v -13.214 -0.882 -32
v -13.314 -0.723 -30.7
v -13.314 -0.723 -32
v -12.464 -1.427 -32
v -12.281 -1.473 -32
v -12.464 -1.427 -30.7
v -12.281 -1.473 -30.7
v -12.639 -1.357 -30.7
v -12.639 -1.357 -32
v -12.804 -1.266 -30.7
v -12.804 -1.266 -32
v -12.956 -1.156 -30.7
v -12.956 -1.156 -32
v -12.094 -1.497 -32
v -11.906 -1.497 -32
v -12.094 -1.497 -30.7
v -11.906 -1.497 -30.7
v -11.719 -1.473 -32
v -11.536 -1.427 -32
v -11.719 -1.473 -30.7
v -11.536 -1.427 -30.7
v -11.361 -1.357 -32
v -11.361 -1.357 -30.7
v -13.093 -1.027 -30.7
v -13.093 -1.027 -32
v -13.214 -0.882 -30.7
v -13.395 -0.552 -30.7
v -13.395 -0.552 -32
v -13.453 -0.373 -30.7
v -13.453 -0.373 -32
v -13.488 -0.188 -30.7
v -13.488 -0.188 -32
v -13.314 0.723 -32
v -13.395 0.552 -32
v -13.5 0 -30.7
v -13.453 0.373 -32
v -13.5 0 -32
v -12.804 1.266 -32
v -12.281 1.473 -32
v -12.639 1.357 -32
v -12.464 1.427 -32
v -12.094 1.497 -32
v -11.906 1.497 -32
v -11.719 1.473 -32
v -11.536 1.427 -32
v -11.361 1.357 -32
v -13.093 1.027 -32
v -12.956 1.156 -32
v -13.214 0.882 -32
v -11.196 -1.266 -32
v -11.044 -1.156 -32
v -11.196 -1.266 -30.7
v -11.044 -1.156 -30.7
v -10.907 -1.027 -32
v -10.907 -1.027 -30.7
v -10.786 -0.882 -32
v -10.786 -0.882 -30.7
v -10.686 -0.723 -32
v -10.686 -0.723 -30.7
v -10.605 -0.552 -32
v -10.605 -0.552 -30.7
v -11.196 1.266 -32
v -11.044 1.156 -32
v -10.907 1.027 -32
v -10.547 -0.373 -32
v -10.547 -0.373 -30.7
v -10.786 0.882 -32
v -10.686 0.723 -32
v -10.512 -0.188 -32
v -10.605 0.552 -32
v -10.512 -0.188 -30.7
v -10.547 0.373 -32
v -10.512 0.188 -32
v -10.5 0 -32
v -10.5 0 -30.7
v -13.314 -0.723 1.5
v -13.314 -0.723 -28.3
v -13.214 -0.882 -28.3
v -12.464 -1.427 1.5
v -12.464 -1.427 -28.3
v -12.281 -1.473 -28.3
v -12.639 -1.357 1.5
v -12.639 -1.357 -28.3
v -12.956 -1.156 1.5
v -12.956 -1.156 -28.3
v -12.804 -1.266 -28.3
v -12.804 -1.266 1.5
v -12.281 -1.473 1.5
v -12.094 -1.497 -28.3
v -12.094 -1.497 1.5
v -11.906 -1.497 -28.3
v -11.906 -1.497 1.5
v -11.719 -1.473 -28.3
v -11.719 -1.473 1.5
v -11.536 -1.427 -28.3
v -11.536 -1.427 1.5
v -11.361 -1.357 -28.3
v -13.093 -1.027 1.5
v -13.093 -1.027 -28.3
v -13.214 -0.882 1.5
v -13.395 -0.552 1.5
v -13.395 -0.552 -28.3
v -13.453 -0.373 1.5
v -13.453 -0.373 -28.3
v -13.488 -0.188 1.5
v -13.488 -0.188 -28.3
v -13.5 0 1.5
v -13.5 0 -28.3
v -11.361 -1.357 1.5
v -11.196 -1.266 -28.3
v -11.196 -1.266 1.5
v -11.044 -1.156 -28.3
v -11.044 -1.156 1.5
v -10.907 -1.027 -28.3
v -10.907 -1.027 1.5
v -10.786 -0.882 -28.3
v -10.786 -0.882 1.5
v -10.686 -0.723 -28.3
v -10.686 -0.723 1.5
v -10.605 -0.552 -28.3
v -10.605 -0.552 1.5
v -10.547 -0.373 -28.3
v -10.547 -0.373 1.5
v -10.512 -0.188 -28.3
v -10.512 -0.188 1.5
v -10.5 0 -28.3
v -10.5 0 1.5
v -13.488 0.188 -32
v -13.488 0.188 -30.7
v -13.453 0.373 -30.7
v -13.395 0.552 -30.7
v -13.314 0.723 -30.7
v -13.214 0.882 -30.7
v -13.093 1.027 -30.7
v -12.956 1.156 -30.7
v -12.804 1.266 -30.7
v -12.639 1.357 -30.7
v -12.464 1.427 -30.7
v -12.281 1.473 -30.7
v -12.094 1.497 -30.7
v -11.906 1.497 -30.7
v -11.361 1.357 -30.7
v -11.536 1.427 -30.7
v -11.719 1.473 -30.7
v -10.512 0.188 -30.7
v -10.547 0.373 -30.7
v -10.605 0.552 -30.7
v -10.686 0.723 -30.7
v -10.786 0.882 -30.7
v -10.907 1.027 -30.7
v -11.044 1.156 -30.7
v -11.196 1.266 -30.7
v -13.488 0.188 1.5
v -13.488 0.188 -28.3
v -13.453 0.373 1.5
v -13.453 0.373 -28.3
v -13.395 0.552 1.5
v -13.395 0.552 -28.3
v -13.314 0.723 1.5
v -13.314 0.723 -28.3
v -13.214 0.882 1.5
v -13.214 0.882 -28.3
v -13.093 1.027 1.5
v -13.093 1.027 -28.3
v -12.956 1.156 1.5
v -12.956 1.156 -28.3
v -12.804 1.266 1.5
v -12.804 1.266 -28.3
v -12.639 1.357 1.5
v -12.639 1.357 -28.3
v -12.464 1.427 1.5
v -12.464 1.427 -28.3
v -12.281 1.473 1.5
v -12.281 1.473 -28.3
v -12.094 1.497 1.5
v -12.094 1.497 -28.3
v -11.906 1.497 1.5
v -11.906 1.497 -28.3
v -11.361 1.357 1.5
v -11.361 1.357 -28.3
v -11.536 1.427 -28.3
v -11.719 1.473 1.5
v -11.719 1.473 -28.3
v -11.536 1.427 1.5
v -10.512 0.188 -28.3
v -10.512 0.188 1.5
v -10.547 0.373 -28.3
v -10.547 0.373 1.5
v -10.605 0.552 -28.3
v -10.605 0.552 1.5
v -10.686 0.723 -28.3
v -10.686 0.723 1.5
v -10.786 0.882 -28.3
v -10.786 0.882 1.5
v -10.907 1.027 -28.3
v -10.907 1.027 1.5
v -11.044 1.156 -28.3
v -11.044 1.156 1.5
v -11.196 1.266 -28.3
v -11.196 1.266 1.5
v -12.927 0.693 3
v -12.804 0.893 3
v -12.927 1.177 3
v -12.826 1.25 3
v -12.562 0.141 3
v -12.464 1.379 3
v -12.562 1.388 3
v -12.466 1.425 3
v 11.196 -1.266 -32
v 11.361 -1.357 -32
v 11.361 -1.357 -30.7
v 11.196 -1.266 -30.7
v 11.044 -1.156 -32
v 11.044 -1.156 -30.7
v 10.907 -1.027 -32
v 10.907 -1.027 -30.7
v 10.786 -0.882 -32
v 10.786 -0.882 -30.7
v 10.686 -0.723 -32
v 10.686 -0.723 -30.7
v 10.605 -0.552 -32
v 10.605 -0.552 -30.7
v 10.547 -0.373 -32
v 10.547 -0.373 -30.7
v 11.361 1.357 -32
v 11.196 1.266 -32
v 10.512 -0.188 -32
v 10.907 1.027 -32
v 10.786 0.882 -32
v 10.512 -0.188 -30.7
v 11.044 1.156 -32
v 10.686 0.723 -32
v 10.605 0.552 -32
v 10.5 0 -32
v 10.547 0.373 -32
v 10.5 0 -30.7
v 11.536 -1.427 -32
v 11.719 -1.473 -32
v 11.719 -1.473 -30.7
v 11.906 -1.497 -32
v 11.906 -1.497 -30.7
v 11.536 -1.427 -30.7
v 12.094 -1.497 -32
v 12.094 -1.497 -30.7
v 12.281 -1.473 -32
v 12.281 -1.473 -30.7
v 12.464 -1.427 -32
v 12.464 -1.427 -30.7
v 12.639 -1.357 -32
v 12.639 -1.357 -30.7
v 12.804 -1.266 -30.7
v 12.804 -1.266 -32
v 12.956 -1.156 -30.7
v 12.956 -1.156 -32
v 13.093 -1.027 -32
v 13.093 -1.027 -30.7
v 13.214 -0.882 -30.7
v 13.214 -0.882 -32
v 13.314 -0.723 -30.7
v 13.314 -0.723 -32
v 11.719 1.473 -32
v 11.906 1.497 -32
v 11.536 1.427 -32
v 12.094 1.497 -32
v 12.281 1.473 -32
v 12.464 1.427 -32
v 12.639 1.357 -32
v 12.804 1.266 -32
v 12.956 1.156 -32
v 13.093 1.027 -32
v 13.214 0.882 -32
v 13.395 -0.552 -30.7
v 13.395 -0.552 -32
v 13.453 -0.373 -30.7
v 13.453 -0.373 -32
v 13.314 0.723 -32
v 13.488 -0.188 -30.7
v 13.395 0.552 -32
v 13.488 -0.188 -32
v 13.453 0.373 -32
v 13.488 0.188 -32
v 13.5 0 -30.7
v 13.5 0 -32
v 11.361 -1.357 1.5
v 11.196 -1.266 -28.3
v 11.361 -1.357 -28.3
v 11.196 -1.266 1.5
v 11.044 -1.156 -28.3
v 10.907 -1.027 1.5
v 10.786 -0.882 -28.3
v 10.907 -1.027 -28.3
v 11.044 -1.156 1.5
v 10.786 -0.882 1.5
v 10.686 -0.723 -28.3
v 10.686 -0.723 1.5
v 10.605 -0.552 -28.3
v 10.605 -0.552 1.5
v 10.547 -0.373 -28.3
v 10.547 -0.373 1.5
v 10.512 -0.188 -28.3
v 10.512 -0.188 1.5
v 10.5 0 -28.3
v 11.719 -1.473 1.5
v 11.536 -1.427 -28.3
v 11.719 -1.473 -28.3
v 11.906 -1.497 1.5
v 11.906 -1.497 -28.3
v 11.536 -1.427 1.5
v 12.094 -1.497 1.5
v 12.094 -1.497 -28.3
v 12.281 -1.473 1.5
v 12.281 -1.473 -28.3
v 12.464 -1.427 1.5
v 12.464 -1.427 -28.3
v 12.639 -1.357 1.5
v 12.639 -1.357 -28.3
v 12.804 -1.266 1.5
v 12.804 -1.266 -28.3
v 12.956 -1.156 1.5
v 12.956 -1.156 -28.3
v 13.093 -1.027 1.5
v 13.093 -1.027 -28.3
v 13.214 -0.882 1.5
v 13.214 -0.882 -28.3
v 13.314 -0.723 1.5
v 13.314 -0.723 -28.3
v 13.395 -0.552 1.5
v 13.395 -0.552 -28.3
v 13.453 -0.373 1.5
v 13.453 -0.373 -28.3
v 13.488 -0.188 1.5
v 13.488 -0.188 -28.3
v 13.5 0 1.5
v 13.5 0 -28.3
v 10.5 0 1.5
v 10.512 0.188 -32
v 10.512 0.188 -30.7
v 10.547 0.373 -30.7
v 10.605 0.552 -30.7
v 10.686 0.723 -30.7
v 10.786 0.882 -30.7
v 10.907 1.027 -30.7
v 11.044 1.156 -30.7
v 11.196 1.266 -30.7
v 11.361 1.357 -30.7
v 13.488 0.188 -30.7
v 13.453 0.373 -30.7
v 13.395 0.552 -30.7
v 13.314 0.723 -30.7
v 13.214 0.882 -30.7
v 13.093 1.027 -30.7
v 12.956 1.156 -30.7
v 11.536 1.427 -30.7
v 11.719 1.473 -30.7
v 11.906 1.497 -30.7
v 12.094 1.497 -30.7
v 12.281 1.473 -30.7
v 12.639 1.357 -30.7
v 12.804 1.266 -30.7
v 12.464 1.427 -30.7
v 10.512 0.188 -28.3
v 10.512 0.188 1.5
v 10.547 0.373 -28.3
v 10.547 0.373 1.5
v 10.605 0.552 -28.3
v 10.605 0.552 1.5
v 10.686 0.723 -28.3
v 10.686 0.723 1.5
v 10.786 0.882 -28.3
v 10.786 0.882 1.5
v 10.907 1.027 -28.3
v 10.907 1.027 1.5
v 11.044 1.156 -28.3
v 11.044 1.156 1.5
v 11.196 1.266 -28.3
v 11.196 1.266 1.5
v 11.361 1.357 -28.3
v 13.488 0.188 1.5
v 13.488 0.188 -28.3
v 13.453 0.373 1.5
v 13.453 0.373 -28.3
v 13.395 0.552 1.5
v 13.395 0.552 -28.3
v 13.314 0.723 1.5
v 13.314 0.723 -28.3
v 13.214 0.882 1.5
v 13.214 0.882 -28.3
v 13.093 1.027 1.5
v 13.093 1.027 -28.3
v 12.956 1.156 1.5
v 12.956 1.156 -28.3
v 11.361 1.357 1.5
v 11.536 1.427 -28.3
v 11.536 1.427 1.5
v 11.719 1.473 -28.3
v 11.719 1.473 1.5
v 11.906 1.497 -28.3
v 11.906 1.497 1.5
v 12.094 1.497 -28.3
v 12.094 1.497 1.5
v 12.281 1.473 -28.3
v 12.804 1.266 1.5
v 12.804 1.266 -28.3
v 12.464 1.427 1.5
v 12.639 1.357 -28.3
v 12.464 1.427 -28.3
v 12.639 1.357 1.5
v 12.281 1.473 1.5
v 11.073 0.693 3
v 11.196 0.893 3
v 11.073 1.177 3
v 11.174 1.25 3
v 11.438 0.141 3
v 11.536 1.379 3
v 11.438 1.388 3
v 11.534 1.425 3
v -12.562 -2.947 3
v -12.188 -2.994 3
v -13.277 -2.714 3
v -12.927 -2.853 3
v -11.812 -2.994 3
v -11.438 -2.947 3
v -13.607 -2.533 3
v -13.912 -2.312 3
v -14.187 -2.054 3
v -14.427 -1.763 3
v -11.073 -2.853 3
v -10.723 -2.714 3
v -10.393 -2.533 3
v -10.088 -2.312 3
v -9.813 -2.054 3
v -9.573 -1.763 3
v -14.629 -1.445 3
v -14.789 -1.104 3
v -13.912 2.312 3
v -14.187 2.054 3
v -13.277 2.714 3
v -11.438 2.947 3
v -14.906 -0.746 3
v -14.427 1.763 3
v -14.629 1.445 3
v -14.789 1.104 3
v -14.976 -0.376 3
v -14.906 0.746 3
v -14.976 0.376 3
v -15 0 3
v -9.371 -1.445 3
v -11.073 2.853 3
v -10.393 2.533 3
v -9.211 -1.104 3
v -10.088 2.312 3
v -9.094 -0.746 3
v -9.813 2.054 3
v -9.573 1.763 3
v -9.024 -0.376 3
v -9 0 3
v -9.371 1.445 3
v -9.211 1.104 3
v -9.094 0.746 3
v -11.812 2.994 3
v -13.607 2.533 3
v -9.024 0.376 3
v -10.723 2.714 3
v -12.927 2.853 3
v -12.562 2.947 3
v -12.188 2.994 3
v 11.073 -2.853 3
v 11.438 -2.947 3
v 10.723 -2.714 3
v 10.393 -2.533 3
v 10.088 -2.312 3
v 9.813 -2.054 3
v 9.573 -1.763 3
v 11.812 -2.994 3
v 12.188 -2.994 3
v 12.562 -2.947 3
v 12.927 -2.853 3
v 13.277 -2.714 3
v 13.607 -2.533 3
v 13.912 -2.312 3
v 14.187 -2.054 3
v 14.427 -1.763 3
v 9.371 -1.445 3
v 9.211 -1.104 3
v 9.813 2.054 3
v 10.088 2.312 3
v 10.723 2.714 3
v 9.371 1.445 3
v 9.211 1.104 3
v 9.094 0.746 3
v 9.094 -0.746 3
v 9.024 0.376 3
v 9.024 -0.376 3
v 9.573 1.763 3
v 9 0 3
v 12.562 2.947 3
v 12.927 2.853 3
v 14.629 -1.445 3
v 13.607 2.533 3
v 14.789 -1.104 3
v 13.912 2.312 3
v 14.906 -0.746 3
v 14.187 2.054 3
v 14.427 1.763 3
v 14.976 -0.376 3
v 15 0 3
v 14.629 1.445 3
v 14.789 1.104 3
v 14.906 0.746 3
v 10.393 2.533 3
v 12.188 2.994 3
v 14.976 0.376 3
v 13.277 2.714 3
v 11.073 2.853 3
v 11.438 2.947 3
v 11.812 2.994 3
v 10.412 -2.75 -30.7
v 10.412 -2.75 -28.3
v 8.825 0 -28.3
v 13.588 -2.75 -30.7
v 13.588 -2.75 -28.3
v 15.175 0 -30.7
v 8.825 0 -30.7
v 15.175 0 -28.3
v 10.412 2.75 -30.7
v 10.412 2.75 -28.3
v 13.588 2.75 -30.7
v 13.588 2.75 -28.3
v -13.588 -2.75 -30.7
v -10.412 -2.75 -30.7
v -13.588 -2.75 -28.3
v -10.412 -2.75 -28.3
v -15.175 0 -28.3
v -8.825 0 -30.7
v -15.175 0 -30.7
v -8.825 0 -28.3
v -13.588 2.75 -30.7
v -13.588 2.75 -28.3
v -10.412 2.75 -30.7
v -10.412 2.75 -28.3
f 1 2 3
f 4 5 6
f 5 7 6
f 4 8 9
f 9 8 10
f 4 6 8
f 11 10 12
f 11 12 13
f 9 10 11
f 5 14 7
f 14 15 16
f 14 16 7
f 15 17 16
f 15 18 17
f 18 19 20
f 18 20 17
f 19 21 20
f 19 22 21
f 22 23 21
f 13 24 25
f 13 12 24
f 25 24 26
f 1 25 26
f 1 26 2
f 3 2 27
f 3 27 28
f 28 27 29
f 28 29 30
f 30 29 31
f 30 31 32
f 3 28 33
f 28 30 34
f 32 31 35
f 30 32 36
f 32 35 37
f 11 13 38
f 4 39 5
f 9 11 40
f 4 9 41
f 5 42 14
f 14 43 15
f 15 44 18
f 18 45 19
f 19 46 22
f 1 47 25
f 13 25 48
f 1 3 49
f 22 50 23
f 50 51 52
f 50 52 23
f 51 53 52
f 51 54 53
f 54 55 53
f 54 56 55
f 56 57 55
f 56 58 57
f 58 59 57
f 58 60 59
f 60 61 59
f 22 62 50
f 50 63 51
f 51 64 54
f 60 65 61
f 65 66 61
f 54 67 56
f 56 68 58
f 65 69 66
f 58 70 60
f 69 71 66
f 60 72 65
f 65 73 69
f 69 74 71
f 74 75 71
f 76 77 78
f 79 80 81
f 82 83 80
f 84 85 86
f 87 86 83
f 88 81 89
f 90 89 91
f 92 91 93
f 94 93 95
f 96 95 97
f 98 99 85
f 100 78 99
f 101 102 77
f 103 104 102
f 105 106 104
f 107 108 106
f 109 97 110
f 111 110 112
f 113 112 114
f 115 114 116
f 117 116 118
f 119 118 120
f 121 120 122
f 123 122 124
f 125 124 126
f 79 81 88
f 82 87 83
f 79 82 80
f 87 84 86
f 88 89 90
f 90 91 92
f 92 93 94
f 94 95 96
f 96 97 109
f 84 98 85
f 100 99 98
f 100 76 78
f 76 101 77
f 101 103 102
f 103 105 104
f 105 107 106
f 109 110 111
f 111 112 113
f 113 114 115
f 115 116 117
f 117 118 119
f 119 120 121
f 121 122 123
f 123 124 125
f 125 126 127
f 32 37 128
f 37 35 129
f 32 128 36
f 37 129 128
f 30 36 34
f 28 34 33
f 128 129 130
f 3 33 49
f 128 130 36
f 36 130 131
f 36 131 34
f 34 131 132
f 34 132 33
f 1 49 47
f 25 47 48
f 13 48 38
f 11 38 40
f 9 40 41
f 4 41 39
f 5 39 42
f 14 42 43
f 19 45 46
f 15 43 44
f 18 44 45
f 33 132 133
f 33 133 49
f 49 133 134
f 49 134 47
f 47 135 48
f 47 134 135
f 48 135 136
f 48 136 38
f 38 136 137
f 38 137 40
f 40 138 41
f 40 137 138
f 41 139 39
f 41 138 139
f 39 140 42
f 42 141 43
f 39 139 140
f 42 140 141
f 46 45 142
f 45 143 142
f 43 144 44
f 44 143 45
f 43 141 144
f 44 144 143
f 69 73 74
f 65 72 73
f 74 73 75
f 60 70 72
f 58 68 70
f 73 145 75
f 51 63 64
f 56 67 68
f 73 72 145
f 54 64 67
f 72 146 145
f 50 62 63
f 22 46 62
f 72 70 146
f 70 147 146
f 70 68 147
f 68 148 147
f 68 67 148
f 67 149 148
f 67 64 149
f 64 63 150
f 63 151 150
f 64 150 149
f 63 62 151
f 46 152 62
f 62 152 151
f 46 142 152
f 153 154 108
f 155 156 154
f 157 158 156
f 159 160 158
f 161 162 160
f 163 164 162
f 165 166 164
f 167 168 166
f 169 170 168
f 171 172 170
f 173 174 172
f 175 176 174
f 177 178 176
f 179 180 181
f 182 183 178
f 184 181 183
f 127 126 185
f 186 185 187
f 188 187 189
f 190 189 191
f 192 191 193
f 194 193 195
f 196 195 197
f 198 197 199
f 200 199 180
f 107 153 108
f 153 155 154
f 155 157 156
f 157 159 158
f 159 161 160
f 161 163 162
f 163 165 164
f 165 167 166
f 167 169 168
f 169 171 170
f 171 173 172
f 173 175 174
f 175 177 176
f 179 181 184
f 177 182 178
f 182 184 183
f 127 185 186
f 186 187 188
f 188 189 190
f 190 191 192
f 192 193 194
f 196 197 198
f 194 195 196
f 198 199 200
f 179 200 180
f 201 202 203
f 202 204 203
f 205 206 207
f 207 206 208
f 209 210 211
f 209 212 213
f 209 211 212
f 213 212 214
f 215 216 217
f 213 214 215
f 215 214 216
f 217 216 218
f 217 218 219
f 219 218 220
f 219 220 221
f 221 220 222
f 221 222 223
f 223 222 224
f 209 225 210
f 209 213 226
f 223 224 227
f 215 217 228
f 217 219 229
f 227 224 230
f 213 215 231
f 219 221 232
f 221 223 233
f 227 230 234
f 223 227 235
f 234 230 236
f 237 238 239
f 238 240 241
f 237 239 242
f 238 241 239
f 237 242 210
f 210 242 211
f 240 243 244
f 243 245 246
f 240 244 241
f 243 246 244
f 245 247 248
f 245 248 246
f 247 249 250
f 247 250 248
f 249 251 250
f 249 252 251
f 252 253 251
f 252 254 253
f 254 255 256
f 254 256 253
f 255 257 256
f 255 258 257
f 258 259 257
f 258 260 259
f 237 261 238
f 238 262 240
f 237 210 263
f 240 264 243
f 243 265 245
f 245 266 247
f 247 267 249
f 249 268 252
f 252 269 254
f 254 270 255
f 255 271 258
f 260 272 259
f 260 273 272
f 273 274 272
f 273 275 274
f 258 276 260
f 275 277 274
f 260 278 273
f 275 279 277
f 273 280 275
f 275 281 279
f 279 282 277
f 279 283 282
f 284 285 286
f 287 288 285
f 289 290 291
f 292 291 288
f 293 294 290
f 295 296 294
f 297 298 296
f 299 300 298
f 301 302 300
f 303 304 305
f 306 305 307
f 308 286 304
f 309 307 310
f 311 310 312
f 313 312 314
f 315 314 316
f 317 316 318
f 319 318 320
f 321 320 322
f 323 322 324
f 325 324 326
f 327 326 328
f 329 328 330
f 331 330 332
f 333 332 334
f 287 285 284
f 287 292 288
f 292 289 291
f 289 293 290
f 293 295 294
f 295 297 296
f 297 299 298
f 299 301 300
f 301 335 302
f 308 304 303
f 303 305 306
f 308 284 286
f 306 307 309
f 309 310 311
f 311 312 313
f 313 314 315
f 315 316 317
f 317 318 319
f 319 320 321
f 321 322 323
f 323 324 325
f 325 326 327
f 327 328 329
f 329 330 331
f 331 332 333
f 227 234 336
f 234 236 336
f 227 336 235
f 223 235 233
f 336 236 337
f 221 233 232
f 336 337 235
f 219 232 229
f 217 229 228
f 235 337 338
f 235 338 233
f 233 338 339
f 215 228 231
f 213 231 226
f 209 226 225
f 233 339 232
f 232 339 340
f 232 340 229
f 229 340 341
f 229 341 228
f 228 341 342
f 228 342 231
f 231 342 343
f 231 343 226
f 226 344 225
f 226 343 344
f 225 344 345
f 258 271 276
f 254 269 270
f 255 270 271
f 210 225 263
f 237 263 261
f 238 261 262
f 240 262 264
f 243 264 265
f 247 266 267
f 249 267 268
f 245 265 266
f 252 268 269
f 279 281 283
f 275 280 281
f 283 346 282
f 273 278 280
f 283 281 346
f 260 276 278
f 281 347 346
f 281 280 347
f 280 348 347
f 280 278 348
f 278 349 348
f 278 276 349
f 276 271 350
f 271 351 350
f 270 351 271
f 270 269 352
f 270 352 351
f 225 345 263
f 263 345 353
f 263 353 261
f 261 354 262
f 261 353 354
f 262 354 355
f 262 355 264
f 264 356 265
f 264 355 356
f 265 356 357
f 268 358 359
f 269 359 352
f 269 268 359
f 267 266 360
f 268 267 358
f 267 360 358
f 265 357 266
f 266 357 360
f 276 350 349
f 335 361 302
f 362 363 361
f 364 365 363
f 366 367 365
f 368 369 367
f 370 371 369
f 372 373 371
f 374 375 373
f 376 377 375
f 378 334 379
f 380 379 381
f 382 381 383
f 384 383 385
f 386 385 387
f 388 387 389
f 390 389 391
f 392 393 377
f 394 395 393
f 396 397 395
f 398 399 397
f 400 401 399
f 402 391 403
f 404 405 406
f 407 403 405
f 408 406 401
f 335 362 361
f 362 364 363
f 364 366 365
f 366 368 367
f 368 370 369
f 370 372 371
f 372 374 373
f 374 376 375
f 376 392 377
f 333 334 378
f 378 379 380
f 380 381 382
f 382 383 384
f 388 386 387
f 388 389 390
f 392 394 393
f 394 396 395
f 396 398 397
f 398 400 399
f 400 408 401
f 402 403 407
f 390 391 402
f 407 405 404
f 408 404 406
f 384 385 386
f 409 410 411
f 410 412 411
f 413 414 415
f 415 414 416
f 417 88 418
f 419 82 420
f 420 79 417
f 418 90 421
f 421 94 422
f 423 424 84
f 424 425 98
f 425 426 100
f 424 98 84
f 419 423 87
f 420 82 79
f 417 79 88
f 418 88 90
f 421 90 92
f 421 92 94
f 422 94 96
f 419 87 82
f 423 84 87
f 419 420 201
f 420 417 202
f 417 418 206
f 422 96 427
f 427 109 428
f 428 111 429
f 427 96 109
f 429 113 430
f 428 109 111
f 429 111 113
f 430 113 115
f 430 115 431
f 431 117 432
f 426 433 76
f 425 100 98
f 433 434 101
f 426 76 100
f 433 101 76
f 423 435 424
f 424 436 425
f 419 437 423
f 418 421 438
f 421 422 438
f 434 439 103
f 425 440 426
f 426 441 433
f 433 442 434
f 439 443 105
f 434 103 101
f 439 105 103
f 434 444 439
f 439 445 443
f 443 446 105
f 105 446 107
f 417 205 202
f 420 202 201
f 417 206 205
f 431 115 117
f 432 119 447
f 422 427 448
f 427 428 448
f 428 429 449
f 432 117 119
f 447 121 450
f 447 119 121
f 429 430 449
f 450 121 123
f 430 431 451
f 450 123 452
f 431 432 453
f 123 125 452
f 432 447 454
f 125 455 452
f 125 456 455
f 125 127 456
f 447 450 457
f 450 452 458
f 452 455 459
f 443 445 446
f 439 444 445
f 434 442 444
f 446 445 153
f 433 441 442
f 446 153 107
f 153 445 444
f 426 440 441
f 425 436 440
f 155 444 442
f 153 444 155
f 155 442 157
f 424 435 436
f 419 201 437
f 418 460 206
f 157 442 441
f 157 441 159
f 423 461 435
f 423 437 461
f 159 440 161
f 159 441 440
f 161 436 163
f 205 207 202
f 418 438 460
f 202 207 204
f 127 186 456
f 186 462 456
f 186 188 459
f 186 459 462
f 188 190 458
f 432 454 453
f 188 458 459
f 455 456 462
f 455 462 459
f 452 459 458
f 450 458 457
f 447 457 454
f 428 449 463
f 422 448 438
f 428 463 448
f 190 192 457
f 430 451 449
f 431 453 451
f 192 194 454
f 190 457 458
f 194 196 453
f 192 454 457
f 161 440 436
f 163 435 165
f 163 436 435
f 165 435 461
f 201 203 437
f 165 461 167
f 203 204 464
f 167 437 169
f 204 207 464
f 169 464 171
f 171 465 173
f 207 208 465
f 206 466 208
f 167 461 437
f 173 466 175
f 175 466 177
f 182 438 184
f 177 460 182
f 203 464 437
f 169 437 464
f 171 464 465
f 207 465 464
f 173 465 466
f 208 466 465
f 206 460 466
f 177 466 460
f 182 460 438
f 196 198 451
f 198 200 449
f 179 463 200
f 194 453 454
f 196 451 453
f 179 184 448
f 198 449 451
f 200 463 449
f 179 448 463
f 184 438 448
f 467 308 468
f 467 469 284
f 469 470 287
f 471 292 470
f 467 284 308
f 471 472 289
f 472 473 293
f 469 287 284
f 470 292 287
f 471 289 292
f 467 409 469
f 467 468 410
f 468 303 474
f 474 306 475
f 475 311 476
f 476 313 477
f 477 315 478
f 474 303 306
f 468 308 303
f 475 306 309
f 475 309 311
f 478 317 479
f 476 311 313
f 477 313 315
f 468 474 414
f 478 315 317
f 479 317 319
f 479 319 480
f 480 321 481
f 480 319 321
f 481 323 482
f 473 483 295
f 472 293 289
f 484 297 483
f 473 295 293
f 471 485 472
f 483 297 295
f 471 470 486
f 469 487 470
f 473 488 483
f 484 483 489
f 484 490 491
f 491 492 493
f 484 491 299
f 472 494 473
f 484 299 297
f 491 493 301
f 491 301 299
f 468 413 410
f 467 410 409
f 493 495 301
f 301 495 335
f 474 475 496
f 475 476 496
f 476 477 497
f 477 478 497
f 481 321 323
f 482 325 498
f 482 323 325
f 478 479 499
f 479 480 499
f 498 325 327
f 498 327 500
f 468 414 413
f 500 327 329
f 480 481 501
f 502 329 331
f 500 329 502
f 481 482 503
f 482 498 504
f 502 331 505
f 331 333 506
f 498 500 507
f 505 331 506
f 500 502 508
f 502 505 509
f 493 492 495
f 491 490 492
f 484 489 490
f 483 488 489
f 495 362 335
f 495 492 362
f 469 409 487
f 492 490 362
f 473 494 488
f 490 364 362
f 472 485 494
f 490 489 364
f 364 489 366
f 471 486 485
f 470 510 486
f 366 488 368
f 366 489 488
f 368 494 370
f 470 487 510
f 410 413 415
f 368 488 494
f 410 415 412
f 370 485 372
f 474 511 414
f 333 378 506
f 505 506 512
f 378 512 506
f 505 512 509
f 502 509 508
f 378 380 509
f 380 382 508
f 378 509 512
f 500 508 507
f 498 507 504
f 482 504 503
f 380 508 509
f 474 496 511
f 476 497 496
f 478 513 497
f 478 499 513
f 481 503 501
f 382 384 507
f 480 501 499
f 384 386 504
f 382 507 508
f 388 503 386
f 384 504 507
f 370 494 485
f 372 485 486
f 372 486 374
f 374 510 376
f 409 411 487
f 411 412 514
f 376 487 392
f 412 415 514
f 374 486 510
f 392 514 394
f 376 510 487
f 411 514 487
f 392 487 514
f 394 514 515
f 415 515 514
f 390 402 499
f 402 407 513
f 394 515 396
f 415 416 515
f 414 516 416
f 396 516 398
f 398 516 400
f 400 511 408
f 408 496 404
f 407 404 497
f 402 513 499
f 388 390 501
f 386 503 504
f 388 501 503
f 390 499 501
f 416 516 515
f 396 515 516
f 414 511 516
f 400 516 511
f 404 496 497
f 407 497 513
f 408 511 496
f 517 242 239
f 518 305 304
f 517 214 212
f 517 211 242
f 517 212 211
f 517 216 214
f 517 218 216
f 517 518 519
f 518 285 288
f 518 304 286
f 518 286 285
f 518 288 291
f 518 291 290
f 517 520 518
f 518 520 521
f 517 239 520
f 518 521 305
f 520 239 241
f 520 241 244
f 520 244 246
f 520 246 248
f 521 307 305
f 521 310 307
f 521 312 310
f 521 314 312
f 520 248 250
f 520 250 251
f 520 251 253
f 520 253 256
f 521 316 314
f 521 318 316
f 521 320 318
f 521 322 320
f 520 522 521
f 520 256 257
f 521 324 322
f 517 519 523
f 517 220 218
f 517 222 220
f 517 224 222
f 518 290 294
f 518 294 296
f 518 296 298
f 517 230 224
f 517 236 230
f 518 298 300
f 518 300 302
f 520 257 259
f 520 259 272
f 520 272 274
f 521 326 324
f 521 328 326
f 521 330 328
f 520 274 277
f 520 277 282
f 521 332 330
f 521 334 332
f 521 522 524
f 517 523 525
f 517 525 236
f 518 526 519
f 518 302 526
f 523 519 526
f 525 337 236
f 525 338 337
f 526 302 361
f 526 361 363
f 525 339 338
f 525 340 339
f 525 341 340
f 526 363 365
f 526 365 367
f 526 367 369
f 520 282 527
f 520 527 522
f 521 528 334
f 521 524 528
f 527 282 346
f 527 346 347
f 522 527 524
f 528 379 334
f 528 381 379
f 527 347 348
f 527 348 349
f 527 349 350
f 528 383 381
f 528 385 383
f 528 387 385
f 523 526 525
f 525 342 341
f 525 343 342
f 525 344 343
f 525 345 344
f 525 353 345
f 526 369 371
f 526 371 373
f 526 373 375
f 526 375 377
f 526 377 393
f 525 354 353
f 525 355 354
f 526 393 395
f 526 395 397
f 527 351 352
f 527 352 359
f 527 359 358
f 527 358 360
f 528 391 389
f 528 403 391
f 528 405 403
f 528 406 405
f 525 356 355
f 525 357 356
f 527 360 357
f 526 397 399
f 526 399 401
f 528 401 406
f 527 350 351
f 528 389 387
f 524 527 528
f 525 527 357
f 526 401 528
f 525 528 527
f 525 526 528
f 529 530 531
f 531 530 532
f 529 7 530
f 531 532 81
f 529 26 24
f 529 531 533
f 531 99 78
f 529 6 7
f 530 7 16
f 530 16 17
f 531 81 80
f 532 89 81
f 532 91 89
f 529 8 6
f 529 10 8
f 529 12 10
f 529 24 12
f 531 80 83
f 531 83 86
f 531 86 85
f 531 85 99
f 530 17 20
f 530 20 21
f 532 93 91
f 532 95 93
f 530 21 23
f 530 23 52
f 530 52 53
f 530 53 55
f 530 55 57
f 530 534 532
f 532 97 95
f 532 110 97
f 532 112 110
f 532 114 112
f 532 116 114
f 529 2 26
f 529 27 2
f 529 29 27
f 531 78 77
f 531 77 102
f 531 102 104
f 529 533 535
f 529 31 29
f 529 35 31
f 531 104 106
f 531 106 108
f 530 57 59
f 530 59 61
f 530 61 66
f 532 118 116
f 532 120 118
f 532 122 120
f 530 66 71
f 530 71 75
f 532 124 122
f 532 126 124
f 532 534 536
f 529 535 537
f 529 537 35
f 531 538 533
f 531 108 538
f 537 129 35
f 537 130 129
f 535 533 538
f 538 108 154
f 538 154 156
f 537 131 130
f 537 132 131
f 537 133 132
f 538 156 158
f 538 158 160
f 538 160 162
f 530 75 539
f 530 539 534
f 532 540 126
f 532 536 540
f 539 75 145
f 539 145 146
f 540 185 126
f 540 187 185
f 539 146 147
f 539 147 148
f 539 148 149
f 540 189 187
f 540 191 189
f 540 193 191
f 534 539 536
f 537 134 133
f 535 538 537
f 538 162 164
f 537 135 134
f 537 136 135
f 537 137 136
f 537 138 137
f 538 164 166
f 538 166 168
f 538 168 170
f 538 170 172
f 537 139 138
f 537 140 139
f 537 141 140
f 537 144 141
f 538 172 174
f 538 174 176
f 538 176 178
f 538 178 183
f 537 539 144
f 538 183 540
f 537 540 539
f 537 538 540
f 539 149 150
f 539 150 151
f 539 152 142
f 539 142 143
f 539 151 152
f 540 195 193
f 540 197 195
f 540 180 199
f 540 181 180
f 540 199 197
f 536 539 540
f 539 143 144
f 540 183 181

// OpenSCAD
$fn = 50;

difference() {
	union() {
		translate(v = [-12, 0, 3]) {
			rotate(a = [0, 0, 0]) {
				difference() {
					union() {
						translate(v = [0, 0, -35.0]) {
							cylinder(h = 35, r = 1.5);
						}
						translate(v = [0, 0, -1.5]) {
							cylinder(h = 1.5, r1 = 1.5, r2 = 3);
						}
					}
					union();
				}
			}
		}
		translate(v = [-12, 0, -30.7]) {
			rotate(a = [0, 0, 0]) {
				difference() {
					union() {
						linear_extrude(height = 2.4) {
							polygon(points = [[3.1754264805429417, 0.0], [1.5877132402714713, 2.75], [-1.5877132402714702, 2.7500000000000004], [-3.1754264805429417, 3.888775875324659e-16], [-1.5877132402714722, -2.7499999999999996], [1.5877132402714687, -2.7500000000000013]]);
						}
					}
					union();
				}
			}
		}
		translate(v = [12, 0, 3]) {
			rotate(a = [0, 0, 0]) {
				difference() {
					union() {
						translate(v = [0, 0, -35.0]) {
							cylinder(h = 35, r = 1.5);
						}
						translate(v = [0, 0, -1.5]) {
							cylinder(h = 1.5, r1 = 1.5, r2 = 3);
						}
					}
					union();
				}
			}
		}
		translate(v = [12, 0, -30.7]) {
			rotate(a = [0, 0, 0]) {
				difference() {
					union() {
						linear_extrude(height = 2.4) {
							polygon(points = [[3.1754264805429417, 0.0], [1.5877132402714713, 2.75], [-1.5877132402714702, 2.7500000000000004], [-3.1754264805429417, 3.888775875324659e-16], [-1.5877132402714722, -2.7499999999999996], [1.5877132402714687, -2.7500000000000013]]);
						}
					}
					union();
				}
			}
		}
	}
	union();
}
